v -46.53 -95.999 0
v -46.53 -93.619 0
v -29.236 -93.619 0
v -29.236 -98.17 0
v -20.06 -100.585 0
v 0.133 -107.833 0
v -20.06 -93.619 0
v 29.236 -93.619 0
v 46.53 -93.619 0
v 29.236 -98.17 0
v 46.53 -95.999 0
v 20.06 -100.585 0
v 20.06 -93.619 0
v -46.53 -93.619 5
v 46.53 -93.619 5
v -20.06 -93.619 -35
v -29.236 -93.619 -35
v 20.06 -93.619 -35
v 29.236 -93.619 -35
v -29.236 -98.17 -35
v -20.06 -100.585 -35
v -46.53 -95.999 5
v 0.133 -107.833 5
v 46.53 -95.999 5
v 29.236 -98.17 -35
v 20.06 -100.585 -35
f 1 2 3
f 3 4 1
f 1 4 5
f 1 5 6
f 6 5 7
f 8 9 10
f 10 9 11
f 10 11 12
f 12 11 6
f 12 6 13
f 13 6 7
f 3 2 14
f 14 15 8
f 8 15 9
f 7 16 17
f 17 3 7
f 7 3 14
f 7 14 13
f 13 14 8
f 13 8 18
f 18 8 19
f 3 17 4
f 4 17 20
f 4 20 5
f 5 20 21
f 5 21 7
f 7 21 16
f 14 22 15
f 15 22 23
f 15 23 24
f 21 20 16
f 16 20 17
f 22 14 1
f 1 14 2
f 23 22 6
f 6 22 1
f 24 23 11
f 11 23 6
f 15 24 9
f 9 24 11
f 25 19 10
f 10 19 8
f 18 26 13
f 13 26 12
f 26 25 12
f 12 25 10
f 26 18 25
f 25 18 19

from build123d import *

# Parameters (mm, degrees)
BOSS_EXTRUDE1_DEPTH   = 40
BOSS_EXTRUDE1_2_DEPTH = 40
BOSS_EXTRUDE2_DEPTH   = 5


with BuildPart() as part:
    # Sketch2 → Boss-Extrude1 (new body)
    with BuildSketch(Plane.XY.offset(-35)):
        Polygon((-29.235736387, -93.619070837), (-29.235736387, -98.170199329), (-20.059825436, -100.584912737), (-20.059825436, -93.619070837), align=None)
    extrude(amount=BOSS_EXTRUDE1_DEPTH)



with BuildPart() as body_2:
    # Sketch2 → Boss-Extrude1 2 (new body)
    with BuildSketch(Plane.XY.offset(-35)):
        Polygon((29.235736387, -98.170199329), (20.059825436, -100.584912737), (20.059825436, -93.619070837), (29.235736387, -93.619070837), align=None)
    extrude(amount=BOSS_EXTRUDE1_2_DEPTH)


with BuildPart() as part_1:
    add(part.part)

    add(body_2.part)  # Boss-Extrude2 merges body 2
    # Sketch3 → Boss-Extrude2 (add)
    with BuildSketch(Plane.XY):
        Polygon((-46.530024654, -93.619070837), (0.133009642, -93.619070837), (46.530024654, -93.619070837), (46.530024654, -95.999382249), (0.133009642, -107.832641703), (-46.530024654, -95.999382249), align=None)
    extrude(amount=BOSS_EXTRUDE2_DEPTH)


solid = part_1.part
